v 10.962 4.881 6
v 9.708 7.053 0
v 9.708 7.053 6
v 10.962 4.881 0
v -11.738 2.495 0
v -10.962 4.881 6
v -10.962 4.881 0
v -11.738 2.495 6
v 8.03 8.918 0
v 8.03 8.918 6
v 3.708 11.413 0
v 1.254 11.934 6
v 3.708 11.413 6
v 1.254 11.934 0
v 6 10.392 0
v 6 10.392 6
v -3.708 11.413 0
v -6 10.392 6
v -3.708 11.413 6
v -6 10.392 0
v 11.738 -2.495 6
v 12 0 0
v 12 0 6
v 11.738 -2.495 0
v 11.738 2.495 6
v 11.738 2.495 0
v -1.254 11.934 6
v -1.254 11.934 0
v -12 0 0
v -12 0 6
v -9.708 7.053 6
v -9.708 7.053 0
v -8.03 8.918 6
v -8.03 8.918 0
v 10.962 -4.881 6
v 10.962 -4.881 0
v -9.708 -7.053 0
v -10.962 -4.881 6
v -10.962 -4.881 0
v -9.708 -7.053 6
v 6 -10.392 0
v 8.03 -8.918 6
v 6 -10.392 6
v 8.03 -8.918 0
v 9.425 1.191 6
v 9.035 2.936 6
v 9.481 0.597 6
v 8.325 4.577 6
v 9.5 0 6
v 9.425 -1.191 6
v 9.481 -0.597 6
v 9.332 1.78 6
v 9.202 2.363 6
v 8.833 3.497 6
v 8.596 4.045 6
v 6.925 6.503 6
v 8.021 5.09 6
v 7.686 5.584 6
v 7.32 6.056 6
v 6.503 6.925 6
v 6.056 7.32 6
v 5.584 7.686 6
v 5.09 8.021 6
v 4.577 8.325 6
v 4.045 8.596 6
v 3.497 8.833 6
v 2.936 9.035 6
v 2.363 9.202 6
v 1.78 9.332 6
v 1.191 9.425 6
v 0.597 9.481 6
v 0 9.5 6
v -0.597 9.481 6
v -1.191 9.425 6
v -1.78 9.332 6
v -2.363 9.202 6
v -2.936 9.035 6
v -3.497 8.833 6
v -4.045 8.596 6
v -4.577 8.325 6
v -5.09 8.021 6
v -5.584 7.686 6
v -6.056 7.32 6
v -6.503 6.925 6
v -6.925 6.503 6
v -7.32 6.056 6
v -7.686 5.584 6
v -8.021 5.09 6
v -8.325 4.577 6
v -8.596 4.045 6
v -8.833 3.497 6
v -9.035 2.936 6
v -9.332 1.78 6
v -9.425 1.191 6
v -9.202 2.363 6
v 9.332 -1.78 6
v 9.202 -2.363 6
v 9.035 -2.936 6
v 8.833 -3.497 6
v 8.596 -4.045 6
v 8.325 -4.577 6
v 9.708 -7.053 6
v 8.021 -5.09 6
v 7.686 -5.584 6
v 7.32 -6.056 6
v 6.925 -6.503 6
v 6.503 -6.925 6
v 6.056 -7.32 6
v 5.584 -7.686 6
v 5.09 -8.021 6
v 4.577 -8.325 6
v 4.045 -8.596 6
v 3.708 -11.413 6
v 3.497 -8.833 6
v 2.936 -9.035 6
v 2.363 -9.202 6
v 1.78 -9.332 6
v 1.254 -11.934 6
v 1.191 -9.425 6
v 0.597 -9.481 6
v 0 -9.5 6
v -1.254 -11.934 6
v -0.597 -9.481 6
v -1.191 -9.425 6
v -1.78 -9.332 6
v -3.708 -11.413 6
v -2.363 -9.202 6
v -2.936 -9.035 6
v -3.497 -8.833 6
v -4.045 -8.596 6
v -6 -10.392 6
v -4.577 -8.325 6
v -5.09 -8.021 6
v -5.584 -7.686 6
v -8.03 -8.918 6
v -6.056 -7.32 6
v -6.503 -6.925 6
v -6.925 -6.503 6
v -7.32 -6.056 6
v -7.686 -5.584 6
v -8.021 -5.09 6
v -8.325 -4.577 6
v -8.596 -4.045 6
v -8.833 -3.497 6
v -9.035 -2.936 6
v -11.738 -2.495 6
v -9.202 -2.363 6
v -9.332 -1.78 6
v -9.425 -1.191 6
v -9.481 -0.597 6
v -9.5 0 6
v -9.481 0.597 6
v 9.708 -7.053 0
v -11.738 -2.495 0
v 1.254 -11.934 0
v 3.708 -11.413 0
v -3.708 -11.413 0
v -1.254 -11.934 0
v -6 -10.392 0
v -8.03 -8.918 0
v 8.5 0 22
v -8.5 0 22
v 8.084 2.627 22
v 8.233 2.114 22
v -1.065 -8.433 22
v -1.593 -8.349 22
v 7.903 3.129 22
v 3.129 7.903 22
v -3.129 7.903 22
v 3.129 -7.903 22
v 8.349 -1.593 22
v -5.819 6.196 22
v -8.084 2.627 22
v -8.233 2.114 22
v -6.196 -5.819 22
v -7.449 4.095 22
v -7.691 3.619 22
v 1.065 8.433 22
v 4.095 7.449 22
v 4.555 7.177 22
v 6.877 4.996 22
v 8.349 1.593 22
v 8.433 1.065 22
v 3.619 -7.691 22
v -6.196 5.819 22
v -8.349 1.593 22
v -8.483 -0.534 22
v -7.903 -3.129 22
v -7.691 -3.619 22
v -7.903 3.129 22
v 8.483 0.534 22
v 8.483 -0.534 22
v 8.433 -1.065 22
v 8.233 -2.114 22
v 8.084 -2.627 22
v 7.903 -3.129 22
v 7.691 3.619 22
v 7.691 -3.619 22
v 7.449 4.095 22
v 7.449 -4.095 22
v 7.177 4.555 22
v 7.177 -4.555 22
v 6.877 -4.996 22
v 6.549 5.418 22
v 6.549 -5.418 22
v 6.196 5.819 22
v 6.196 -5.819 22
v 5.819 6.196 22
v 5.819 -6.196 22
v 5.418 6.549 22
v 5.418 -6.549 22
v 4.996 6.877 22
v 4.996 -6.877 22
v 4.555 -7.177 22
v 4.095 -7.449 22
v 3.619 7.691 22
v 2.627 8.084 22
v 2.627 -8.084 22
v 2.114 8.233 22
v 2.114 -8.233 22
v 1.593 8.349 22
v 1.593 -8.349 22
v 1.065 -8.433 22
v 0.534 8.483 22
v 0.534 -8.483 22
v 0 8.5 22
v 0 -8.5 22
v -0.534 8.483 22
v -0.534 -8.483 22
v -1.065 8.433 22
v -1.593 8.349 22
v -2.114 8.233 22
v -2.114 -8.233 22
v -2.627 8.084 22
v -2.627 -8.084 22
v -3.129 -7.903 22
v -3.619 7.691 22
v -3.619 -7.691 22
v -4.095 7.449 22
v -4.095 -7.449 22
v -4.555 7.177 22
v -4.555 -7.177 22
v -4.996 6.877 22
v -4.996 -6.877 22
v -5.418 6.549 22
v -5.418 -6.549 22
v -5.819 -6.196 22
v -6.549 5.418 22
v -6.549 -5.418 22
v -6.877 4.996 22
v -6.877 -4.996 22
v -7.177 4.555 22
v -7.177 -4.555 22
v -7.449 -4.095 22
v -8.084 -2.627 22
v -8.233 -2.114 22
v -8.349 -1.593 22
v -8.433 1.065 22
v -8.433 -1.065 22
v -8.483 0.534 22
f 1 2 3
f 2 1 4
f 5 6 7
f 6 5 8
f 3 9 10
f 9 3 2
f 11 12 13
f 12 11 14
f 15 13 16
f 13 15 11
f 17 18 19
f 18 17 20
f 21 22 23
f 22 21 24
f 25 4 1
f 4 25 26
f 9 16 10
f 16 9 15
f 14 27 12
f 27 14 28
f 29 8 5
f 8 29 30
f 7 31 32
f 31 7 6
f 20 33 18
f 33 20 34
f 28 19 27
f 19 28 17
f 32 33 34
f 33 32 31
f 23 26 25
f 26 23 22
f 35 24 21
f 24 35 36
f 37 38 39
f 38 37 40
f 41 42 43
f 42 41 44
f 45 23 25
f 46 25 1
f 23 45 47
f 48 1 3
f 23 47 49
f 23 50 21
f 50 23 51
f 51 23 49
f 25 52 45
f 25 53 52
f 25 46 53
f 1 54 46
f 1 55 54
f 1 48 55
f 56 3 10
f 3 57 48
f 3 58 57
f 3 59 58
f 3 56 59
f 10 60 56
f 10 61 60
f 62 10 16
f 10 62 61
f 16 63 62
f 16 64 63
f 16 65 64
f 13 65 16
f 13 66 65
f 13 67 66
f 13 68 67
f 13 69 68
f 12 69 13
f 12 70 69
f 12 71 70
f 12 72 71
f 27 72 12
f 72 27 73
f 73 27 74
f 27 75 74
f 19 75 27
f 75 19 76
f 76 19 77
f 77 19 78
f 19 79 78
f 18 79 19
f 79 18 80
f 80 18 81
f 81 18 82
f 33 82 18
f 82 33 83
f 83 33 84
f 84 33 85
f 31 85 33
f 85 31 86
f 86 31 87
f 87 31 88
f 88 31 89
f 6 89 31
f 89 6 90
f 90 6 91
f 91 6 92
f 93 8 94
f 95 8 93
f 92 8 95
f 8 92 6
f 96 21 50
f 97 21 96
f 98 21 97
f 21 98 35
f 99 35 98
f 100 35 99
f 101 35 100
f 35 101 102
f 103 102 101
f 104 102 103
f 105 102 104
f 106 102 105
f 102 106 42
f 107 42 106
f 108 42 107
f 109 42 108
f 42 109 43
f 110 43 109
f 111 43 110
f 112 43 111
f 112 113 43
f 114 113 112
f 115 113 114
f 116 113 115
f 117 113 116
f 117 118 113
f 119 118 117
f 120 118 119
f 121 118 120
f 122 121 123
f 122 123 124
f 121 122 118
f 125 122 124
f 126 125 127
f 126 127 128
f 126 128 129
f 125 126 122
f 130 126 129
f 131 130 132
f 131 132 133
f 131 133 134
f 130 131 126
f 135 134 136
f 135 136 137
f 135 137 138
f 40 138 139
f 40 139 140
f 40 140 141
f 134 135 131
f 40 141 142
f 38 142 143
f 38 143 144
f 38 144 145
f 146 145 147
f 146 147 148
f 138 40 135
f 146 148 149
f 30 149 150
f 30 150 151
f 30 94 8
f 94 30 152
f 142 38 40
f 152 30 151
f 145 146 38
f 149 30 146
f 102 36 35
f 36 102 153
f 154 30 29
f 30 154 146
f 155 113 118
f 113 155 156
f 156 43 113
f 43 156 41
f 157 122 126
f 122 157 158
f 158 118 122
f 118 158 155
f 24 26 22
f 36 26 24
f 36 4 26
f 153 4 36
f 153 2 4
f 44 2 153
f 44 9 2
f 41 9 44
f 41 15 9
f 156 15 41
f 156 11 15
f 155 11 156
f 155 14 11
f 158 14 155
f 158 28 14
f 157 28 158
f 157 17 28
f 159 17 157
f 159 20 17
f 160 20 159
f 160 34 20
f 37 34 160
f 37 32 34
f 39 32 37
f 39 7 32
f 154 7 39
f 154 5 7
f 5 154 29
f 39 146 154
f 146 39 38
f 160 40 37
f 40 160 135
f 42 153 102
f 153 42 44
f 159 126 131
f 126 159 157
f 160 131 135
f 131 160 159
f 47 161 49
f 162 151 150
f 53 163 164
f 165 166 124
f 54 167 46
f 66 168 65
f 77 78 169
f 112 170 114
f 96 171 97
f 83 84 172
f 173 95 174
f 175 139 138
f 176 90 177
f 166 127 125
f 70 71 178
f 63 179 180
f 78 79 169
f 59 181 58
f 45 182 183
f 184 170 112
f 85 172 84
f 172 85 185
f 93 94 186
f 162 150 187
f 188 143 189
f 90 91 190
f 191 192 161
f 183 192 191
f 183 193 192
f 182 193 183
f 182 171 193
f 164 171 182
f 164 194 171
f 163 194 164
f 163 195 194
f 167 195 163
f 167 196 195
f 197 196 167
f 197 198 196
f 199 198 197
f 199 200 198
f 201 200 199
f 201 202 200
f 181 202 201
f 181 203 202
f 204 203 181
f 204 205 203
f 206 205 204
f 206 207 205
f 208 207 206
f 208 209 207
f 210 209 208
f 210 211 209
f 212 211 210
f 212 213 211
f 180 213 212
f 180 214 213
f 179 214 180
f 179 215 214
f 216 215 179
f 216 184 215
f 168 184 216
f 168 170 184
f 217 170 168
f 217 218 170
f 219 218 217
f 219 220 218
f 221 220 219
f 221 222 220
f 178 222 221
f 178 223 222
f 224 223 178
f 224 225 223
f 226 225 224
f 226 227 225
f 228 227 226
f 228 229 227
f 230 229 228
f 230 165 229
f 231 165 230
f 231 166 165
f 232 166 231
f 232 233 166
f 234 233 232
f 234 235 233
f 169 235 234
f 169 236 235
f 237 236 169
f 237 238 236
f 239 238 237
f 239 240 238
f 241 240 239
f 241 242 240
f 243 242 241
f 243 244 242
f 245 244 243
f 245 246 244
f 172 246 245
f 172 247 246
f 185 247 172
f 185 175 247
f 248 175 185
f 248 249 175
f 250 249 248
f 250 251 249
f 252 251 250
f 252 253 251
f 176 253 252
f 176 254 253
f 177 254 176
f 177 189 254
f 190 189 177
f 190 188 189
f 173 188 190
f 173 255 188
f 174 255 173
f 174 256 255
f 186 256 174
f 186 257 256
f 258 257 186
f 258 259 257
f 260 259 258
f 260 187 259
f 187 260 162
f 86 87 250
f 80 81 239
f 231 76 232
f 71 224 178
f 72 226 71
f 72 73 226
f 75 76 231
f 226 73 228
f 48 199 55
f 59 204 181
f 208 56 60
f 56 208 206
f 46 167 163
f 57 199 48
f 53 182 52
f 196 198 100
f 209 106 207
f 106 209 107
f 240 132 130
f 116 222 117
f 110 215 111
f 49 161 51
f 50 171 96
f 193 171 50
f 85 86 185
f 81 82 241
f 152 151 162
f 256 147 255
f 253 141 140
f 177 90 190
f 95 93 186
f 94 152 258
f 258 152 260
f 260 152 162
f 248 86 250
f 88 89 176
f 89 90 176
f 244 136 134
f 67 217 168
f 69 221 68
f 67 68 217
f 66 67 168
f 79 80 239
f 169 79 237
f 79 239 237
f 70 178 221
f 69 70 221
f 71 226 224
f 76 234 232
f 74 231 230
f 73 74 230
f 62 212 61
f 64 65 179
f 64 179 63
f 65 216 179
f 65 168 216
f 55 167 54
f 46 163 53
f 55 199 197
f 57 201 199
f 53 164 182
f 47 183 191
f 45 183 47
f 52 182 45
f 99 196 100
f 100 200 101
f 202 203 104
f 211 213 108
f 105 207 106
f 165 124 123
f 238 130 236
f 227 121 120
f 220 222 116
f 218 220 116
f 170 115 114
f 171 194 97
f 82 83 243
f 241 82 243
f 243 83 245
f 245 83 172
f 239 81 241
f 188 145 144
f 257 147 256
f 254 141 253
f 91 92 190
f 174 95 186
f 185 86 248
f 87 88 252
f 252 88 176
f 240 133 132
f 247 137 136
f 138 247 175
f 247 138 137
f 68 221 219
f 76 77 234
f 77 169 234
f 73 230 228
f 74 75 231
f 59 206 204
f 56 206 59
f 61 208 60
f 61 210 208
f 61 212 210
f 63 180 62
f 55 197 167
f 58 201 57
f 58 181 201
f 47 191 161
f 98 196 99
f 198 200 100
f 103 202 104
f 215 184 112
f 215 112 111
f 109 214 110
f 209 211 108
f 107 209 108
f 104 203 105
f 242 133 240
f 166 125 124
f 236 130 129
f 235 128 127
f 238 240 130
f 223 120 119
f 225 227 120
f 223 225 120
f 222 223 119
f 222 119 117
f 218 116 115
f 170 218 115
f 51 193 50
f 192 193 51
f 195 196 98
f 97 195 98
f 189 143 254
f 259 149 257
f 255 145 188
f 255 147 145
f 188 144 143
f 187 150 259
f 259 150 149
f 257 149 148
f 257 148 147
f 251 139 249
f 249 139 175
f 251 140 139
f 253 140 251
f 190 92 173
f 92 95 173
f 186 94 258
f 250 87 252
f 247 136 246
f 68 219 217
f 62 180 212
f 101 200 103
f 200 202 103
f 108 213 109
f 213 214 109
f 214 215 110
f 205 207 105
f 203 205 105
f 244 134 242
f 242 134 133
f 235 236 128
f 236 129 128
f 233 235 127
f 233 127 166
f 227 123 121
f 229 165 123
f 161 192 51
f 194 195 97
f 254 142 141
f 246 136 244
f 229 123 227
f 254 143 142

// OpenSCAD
cylinder(6,24/2,24/2);
translate([0,0,6]) cylinder(16,19/2,17/2, $fn=100);
